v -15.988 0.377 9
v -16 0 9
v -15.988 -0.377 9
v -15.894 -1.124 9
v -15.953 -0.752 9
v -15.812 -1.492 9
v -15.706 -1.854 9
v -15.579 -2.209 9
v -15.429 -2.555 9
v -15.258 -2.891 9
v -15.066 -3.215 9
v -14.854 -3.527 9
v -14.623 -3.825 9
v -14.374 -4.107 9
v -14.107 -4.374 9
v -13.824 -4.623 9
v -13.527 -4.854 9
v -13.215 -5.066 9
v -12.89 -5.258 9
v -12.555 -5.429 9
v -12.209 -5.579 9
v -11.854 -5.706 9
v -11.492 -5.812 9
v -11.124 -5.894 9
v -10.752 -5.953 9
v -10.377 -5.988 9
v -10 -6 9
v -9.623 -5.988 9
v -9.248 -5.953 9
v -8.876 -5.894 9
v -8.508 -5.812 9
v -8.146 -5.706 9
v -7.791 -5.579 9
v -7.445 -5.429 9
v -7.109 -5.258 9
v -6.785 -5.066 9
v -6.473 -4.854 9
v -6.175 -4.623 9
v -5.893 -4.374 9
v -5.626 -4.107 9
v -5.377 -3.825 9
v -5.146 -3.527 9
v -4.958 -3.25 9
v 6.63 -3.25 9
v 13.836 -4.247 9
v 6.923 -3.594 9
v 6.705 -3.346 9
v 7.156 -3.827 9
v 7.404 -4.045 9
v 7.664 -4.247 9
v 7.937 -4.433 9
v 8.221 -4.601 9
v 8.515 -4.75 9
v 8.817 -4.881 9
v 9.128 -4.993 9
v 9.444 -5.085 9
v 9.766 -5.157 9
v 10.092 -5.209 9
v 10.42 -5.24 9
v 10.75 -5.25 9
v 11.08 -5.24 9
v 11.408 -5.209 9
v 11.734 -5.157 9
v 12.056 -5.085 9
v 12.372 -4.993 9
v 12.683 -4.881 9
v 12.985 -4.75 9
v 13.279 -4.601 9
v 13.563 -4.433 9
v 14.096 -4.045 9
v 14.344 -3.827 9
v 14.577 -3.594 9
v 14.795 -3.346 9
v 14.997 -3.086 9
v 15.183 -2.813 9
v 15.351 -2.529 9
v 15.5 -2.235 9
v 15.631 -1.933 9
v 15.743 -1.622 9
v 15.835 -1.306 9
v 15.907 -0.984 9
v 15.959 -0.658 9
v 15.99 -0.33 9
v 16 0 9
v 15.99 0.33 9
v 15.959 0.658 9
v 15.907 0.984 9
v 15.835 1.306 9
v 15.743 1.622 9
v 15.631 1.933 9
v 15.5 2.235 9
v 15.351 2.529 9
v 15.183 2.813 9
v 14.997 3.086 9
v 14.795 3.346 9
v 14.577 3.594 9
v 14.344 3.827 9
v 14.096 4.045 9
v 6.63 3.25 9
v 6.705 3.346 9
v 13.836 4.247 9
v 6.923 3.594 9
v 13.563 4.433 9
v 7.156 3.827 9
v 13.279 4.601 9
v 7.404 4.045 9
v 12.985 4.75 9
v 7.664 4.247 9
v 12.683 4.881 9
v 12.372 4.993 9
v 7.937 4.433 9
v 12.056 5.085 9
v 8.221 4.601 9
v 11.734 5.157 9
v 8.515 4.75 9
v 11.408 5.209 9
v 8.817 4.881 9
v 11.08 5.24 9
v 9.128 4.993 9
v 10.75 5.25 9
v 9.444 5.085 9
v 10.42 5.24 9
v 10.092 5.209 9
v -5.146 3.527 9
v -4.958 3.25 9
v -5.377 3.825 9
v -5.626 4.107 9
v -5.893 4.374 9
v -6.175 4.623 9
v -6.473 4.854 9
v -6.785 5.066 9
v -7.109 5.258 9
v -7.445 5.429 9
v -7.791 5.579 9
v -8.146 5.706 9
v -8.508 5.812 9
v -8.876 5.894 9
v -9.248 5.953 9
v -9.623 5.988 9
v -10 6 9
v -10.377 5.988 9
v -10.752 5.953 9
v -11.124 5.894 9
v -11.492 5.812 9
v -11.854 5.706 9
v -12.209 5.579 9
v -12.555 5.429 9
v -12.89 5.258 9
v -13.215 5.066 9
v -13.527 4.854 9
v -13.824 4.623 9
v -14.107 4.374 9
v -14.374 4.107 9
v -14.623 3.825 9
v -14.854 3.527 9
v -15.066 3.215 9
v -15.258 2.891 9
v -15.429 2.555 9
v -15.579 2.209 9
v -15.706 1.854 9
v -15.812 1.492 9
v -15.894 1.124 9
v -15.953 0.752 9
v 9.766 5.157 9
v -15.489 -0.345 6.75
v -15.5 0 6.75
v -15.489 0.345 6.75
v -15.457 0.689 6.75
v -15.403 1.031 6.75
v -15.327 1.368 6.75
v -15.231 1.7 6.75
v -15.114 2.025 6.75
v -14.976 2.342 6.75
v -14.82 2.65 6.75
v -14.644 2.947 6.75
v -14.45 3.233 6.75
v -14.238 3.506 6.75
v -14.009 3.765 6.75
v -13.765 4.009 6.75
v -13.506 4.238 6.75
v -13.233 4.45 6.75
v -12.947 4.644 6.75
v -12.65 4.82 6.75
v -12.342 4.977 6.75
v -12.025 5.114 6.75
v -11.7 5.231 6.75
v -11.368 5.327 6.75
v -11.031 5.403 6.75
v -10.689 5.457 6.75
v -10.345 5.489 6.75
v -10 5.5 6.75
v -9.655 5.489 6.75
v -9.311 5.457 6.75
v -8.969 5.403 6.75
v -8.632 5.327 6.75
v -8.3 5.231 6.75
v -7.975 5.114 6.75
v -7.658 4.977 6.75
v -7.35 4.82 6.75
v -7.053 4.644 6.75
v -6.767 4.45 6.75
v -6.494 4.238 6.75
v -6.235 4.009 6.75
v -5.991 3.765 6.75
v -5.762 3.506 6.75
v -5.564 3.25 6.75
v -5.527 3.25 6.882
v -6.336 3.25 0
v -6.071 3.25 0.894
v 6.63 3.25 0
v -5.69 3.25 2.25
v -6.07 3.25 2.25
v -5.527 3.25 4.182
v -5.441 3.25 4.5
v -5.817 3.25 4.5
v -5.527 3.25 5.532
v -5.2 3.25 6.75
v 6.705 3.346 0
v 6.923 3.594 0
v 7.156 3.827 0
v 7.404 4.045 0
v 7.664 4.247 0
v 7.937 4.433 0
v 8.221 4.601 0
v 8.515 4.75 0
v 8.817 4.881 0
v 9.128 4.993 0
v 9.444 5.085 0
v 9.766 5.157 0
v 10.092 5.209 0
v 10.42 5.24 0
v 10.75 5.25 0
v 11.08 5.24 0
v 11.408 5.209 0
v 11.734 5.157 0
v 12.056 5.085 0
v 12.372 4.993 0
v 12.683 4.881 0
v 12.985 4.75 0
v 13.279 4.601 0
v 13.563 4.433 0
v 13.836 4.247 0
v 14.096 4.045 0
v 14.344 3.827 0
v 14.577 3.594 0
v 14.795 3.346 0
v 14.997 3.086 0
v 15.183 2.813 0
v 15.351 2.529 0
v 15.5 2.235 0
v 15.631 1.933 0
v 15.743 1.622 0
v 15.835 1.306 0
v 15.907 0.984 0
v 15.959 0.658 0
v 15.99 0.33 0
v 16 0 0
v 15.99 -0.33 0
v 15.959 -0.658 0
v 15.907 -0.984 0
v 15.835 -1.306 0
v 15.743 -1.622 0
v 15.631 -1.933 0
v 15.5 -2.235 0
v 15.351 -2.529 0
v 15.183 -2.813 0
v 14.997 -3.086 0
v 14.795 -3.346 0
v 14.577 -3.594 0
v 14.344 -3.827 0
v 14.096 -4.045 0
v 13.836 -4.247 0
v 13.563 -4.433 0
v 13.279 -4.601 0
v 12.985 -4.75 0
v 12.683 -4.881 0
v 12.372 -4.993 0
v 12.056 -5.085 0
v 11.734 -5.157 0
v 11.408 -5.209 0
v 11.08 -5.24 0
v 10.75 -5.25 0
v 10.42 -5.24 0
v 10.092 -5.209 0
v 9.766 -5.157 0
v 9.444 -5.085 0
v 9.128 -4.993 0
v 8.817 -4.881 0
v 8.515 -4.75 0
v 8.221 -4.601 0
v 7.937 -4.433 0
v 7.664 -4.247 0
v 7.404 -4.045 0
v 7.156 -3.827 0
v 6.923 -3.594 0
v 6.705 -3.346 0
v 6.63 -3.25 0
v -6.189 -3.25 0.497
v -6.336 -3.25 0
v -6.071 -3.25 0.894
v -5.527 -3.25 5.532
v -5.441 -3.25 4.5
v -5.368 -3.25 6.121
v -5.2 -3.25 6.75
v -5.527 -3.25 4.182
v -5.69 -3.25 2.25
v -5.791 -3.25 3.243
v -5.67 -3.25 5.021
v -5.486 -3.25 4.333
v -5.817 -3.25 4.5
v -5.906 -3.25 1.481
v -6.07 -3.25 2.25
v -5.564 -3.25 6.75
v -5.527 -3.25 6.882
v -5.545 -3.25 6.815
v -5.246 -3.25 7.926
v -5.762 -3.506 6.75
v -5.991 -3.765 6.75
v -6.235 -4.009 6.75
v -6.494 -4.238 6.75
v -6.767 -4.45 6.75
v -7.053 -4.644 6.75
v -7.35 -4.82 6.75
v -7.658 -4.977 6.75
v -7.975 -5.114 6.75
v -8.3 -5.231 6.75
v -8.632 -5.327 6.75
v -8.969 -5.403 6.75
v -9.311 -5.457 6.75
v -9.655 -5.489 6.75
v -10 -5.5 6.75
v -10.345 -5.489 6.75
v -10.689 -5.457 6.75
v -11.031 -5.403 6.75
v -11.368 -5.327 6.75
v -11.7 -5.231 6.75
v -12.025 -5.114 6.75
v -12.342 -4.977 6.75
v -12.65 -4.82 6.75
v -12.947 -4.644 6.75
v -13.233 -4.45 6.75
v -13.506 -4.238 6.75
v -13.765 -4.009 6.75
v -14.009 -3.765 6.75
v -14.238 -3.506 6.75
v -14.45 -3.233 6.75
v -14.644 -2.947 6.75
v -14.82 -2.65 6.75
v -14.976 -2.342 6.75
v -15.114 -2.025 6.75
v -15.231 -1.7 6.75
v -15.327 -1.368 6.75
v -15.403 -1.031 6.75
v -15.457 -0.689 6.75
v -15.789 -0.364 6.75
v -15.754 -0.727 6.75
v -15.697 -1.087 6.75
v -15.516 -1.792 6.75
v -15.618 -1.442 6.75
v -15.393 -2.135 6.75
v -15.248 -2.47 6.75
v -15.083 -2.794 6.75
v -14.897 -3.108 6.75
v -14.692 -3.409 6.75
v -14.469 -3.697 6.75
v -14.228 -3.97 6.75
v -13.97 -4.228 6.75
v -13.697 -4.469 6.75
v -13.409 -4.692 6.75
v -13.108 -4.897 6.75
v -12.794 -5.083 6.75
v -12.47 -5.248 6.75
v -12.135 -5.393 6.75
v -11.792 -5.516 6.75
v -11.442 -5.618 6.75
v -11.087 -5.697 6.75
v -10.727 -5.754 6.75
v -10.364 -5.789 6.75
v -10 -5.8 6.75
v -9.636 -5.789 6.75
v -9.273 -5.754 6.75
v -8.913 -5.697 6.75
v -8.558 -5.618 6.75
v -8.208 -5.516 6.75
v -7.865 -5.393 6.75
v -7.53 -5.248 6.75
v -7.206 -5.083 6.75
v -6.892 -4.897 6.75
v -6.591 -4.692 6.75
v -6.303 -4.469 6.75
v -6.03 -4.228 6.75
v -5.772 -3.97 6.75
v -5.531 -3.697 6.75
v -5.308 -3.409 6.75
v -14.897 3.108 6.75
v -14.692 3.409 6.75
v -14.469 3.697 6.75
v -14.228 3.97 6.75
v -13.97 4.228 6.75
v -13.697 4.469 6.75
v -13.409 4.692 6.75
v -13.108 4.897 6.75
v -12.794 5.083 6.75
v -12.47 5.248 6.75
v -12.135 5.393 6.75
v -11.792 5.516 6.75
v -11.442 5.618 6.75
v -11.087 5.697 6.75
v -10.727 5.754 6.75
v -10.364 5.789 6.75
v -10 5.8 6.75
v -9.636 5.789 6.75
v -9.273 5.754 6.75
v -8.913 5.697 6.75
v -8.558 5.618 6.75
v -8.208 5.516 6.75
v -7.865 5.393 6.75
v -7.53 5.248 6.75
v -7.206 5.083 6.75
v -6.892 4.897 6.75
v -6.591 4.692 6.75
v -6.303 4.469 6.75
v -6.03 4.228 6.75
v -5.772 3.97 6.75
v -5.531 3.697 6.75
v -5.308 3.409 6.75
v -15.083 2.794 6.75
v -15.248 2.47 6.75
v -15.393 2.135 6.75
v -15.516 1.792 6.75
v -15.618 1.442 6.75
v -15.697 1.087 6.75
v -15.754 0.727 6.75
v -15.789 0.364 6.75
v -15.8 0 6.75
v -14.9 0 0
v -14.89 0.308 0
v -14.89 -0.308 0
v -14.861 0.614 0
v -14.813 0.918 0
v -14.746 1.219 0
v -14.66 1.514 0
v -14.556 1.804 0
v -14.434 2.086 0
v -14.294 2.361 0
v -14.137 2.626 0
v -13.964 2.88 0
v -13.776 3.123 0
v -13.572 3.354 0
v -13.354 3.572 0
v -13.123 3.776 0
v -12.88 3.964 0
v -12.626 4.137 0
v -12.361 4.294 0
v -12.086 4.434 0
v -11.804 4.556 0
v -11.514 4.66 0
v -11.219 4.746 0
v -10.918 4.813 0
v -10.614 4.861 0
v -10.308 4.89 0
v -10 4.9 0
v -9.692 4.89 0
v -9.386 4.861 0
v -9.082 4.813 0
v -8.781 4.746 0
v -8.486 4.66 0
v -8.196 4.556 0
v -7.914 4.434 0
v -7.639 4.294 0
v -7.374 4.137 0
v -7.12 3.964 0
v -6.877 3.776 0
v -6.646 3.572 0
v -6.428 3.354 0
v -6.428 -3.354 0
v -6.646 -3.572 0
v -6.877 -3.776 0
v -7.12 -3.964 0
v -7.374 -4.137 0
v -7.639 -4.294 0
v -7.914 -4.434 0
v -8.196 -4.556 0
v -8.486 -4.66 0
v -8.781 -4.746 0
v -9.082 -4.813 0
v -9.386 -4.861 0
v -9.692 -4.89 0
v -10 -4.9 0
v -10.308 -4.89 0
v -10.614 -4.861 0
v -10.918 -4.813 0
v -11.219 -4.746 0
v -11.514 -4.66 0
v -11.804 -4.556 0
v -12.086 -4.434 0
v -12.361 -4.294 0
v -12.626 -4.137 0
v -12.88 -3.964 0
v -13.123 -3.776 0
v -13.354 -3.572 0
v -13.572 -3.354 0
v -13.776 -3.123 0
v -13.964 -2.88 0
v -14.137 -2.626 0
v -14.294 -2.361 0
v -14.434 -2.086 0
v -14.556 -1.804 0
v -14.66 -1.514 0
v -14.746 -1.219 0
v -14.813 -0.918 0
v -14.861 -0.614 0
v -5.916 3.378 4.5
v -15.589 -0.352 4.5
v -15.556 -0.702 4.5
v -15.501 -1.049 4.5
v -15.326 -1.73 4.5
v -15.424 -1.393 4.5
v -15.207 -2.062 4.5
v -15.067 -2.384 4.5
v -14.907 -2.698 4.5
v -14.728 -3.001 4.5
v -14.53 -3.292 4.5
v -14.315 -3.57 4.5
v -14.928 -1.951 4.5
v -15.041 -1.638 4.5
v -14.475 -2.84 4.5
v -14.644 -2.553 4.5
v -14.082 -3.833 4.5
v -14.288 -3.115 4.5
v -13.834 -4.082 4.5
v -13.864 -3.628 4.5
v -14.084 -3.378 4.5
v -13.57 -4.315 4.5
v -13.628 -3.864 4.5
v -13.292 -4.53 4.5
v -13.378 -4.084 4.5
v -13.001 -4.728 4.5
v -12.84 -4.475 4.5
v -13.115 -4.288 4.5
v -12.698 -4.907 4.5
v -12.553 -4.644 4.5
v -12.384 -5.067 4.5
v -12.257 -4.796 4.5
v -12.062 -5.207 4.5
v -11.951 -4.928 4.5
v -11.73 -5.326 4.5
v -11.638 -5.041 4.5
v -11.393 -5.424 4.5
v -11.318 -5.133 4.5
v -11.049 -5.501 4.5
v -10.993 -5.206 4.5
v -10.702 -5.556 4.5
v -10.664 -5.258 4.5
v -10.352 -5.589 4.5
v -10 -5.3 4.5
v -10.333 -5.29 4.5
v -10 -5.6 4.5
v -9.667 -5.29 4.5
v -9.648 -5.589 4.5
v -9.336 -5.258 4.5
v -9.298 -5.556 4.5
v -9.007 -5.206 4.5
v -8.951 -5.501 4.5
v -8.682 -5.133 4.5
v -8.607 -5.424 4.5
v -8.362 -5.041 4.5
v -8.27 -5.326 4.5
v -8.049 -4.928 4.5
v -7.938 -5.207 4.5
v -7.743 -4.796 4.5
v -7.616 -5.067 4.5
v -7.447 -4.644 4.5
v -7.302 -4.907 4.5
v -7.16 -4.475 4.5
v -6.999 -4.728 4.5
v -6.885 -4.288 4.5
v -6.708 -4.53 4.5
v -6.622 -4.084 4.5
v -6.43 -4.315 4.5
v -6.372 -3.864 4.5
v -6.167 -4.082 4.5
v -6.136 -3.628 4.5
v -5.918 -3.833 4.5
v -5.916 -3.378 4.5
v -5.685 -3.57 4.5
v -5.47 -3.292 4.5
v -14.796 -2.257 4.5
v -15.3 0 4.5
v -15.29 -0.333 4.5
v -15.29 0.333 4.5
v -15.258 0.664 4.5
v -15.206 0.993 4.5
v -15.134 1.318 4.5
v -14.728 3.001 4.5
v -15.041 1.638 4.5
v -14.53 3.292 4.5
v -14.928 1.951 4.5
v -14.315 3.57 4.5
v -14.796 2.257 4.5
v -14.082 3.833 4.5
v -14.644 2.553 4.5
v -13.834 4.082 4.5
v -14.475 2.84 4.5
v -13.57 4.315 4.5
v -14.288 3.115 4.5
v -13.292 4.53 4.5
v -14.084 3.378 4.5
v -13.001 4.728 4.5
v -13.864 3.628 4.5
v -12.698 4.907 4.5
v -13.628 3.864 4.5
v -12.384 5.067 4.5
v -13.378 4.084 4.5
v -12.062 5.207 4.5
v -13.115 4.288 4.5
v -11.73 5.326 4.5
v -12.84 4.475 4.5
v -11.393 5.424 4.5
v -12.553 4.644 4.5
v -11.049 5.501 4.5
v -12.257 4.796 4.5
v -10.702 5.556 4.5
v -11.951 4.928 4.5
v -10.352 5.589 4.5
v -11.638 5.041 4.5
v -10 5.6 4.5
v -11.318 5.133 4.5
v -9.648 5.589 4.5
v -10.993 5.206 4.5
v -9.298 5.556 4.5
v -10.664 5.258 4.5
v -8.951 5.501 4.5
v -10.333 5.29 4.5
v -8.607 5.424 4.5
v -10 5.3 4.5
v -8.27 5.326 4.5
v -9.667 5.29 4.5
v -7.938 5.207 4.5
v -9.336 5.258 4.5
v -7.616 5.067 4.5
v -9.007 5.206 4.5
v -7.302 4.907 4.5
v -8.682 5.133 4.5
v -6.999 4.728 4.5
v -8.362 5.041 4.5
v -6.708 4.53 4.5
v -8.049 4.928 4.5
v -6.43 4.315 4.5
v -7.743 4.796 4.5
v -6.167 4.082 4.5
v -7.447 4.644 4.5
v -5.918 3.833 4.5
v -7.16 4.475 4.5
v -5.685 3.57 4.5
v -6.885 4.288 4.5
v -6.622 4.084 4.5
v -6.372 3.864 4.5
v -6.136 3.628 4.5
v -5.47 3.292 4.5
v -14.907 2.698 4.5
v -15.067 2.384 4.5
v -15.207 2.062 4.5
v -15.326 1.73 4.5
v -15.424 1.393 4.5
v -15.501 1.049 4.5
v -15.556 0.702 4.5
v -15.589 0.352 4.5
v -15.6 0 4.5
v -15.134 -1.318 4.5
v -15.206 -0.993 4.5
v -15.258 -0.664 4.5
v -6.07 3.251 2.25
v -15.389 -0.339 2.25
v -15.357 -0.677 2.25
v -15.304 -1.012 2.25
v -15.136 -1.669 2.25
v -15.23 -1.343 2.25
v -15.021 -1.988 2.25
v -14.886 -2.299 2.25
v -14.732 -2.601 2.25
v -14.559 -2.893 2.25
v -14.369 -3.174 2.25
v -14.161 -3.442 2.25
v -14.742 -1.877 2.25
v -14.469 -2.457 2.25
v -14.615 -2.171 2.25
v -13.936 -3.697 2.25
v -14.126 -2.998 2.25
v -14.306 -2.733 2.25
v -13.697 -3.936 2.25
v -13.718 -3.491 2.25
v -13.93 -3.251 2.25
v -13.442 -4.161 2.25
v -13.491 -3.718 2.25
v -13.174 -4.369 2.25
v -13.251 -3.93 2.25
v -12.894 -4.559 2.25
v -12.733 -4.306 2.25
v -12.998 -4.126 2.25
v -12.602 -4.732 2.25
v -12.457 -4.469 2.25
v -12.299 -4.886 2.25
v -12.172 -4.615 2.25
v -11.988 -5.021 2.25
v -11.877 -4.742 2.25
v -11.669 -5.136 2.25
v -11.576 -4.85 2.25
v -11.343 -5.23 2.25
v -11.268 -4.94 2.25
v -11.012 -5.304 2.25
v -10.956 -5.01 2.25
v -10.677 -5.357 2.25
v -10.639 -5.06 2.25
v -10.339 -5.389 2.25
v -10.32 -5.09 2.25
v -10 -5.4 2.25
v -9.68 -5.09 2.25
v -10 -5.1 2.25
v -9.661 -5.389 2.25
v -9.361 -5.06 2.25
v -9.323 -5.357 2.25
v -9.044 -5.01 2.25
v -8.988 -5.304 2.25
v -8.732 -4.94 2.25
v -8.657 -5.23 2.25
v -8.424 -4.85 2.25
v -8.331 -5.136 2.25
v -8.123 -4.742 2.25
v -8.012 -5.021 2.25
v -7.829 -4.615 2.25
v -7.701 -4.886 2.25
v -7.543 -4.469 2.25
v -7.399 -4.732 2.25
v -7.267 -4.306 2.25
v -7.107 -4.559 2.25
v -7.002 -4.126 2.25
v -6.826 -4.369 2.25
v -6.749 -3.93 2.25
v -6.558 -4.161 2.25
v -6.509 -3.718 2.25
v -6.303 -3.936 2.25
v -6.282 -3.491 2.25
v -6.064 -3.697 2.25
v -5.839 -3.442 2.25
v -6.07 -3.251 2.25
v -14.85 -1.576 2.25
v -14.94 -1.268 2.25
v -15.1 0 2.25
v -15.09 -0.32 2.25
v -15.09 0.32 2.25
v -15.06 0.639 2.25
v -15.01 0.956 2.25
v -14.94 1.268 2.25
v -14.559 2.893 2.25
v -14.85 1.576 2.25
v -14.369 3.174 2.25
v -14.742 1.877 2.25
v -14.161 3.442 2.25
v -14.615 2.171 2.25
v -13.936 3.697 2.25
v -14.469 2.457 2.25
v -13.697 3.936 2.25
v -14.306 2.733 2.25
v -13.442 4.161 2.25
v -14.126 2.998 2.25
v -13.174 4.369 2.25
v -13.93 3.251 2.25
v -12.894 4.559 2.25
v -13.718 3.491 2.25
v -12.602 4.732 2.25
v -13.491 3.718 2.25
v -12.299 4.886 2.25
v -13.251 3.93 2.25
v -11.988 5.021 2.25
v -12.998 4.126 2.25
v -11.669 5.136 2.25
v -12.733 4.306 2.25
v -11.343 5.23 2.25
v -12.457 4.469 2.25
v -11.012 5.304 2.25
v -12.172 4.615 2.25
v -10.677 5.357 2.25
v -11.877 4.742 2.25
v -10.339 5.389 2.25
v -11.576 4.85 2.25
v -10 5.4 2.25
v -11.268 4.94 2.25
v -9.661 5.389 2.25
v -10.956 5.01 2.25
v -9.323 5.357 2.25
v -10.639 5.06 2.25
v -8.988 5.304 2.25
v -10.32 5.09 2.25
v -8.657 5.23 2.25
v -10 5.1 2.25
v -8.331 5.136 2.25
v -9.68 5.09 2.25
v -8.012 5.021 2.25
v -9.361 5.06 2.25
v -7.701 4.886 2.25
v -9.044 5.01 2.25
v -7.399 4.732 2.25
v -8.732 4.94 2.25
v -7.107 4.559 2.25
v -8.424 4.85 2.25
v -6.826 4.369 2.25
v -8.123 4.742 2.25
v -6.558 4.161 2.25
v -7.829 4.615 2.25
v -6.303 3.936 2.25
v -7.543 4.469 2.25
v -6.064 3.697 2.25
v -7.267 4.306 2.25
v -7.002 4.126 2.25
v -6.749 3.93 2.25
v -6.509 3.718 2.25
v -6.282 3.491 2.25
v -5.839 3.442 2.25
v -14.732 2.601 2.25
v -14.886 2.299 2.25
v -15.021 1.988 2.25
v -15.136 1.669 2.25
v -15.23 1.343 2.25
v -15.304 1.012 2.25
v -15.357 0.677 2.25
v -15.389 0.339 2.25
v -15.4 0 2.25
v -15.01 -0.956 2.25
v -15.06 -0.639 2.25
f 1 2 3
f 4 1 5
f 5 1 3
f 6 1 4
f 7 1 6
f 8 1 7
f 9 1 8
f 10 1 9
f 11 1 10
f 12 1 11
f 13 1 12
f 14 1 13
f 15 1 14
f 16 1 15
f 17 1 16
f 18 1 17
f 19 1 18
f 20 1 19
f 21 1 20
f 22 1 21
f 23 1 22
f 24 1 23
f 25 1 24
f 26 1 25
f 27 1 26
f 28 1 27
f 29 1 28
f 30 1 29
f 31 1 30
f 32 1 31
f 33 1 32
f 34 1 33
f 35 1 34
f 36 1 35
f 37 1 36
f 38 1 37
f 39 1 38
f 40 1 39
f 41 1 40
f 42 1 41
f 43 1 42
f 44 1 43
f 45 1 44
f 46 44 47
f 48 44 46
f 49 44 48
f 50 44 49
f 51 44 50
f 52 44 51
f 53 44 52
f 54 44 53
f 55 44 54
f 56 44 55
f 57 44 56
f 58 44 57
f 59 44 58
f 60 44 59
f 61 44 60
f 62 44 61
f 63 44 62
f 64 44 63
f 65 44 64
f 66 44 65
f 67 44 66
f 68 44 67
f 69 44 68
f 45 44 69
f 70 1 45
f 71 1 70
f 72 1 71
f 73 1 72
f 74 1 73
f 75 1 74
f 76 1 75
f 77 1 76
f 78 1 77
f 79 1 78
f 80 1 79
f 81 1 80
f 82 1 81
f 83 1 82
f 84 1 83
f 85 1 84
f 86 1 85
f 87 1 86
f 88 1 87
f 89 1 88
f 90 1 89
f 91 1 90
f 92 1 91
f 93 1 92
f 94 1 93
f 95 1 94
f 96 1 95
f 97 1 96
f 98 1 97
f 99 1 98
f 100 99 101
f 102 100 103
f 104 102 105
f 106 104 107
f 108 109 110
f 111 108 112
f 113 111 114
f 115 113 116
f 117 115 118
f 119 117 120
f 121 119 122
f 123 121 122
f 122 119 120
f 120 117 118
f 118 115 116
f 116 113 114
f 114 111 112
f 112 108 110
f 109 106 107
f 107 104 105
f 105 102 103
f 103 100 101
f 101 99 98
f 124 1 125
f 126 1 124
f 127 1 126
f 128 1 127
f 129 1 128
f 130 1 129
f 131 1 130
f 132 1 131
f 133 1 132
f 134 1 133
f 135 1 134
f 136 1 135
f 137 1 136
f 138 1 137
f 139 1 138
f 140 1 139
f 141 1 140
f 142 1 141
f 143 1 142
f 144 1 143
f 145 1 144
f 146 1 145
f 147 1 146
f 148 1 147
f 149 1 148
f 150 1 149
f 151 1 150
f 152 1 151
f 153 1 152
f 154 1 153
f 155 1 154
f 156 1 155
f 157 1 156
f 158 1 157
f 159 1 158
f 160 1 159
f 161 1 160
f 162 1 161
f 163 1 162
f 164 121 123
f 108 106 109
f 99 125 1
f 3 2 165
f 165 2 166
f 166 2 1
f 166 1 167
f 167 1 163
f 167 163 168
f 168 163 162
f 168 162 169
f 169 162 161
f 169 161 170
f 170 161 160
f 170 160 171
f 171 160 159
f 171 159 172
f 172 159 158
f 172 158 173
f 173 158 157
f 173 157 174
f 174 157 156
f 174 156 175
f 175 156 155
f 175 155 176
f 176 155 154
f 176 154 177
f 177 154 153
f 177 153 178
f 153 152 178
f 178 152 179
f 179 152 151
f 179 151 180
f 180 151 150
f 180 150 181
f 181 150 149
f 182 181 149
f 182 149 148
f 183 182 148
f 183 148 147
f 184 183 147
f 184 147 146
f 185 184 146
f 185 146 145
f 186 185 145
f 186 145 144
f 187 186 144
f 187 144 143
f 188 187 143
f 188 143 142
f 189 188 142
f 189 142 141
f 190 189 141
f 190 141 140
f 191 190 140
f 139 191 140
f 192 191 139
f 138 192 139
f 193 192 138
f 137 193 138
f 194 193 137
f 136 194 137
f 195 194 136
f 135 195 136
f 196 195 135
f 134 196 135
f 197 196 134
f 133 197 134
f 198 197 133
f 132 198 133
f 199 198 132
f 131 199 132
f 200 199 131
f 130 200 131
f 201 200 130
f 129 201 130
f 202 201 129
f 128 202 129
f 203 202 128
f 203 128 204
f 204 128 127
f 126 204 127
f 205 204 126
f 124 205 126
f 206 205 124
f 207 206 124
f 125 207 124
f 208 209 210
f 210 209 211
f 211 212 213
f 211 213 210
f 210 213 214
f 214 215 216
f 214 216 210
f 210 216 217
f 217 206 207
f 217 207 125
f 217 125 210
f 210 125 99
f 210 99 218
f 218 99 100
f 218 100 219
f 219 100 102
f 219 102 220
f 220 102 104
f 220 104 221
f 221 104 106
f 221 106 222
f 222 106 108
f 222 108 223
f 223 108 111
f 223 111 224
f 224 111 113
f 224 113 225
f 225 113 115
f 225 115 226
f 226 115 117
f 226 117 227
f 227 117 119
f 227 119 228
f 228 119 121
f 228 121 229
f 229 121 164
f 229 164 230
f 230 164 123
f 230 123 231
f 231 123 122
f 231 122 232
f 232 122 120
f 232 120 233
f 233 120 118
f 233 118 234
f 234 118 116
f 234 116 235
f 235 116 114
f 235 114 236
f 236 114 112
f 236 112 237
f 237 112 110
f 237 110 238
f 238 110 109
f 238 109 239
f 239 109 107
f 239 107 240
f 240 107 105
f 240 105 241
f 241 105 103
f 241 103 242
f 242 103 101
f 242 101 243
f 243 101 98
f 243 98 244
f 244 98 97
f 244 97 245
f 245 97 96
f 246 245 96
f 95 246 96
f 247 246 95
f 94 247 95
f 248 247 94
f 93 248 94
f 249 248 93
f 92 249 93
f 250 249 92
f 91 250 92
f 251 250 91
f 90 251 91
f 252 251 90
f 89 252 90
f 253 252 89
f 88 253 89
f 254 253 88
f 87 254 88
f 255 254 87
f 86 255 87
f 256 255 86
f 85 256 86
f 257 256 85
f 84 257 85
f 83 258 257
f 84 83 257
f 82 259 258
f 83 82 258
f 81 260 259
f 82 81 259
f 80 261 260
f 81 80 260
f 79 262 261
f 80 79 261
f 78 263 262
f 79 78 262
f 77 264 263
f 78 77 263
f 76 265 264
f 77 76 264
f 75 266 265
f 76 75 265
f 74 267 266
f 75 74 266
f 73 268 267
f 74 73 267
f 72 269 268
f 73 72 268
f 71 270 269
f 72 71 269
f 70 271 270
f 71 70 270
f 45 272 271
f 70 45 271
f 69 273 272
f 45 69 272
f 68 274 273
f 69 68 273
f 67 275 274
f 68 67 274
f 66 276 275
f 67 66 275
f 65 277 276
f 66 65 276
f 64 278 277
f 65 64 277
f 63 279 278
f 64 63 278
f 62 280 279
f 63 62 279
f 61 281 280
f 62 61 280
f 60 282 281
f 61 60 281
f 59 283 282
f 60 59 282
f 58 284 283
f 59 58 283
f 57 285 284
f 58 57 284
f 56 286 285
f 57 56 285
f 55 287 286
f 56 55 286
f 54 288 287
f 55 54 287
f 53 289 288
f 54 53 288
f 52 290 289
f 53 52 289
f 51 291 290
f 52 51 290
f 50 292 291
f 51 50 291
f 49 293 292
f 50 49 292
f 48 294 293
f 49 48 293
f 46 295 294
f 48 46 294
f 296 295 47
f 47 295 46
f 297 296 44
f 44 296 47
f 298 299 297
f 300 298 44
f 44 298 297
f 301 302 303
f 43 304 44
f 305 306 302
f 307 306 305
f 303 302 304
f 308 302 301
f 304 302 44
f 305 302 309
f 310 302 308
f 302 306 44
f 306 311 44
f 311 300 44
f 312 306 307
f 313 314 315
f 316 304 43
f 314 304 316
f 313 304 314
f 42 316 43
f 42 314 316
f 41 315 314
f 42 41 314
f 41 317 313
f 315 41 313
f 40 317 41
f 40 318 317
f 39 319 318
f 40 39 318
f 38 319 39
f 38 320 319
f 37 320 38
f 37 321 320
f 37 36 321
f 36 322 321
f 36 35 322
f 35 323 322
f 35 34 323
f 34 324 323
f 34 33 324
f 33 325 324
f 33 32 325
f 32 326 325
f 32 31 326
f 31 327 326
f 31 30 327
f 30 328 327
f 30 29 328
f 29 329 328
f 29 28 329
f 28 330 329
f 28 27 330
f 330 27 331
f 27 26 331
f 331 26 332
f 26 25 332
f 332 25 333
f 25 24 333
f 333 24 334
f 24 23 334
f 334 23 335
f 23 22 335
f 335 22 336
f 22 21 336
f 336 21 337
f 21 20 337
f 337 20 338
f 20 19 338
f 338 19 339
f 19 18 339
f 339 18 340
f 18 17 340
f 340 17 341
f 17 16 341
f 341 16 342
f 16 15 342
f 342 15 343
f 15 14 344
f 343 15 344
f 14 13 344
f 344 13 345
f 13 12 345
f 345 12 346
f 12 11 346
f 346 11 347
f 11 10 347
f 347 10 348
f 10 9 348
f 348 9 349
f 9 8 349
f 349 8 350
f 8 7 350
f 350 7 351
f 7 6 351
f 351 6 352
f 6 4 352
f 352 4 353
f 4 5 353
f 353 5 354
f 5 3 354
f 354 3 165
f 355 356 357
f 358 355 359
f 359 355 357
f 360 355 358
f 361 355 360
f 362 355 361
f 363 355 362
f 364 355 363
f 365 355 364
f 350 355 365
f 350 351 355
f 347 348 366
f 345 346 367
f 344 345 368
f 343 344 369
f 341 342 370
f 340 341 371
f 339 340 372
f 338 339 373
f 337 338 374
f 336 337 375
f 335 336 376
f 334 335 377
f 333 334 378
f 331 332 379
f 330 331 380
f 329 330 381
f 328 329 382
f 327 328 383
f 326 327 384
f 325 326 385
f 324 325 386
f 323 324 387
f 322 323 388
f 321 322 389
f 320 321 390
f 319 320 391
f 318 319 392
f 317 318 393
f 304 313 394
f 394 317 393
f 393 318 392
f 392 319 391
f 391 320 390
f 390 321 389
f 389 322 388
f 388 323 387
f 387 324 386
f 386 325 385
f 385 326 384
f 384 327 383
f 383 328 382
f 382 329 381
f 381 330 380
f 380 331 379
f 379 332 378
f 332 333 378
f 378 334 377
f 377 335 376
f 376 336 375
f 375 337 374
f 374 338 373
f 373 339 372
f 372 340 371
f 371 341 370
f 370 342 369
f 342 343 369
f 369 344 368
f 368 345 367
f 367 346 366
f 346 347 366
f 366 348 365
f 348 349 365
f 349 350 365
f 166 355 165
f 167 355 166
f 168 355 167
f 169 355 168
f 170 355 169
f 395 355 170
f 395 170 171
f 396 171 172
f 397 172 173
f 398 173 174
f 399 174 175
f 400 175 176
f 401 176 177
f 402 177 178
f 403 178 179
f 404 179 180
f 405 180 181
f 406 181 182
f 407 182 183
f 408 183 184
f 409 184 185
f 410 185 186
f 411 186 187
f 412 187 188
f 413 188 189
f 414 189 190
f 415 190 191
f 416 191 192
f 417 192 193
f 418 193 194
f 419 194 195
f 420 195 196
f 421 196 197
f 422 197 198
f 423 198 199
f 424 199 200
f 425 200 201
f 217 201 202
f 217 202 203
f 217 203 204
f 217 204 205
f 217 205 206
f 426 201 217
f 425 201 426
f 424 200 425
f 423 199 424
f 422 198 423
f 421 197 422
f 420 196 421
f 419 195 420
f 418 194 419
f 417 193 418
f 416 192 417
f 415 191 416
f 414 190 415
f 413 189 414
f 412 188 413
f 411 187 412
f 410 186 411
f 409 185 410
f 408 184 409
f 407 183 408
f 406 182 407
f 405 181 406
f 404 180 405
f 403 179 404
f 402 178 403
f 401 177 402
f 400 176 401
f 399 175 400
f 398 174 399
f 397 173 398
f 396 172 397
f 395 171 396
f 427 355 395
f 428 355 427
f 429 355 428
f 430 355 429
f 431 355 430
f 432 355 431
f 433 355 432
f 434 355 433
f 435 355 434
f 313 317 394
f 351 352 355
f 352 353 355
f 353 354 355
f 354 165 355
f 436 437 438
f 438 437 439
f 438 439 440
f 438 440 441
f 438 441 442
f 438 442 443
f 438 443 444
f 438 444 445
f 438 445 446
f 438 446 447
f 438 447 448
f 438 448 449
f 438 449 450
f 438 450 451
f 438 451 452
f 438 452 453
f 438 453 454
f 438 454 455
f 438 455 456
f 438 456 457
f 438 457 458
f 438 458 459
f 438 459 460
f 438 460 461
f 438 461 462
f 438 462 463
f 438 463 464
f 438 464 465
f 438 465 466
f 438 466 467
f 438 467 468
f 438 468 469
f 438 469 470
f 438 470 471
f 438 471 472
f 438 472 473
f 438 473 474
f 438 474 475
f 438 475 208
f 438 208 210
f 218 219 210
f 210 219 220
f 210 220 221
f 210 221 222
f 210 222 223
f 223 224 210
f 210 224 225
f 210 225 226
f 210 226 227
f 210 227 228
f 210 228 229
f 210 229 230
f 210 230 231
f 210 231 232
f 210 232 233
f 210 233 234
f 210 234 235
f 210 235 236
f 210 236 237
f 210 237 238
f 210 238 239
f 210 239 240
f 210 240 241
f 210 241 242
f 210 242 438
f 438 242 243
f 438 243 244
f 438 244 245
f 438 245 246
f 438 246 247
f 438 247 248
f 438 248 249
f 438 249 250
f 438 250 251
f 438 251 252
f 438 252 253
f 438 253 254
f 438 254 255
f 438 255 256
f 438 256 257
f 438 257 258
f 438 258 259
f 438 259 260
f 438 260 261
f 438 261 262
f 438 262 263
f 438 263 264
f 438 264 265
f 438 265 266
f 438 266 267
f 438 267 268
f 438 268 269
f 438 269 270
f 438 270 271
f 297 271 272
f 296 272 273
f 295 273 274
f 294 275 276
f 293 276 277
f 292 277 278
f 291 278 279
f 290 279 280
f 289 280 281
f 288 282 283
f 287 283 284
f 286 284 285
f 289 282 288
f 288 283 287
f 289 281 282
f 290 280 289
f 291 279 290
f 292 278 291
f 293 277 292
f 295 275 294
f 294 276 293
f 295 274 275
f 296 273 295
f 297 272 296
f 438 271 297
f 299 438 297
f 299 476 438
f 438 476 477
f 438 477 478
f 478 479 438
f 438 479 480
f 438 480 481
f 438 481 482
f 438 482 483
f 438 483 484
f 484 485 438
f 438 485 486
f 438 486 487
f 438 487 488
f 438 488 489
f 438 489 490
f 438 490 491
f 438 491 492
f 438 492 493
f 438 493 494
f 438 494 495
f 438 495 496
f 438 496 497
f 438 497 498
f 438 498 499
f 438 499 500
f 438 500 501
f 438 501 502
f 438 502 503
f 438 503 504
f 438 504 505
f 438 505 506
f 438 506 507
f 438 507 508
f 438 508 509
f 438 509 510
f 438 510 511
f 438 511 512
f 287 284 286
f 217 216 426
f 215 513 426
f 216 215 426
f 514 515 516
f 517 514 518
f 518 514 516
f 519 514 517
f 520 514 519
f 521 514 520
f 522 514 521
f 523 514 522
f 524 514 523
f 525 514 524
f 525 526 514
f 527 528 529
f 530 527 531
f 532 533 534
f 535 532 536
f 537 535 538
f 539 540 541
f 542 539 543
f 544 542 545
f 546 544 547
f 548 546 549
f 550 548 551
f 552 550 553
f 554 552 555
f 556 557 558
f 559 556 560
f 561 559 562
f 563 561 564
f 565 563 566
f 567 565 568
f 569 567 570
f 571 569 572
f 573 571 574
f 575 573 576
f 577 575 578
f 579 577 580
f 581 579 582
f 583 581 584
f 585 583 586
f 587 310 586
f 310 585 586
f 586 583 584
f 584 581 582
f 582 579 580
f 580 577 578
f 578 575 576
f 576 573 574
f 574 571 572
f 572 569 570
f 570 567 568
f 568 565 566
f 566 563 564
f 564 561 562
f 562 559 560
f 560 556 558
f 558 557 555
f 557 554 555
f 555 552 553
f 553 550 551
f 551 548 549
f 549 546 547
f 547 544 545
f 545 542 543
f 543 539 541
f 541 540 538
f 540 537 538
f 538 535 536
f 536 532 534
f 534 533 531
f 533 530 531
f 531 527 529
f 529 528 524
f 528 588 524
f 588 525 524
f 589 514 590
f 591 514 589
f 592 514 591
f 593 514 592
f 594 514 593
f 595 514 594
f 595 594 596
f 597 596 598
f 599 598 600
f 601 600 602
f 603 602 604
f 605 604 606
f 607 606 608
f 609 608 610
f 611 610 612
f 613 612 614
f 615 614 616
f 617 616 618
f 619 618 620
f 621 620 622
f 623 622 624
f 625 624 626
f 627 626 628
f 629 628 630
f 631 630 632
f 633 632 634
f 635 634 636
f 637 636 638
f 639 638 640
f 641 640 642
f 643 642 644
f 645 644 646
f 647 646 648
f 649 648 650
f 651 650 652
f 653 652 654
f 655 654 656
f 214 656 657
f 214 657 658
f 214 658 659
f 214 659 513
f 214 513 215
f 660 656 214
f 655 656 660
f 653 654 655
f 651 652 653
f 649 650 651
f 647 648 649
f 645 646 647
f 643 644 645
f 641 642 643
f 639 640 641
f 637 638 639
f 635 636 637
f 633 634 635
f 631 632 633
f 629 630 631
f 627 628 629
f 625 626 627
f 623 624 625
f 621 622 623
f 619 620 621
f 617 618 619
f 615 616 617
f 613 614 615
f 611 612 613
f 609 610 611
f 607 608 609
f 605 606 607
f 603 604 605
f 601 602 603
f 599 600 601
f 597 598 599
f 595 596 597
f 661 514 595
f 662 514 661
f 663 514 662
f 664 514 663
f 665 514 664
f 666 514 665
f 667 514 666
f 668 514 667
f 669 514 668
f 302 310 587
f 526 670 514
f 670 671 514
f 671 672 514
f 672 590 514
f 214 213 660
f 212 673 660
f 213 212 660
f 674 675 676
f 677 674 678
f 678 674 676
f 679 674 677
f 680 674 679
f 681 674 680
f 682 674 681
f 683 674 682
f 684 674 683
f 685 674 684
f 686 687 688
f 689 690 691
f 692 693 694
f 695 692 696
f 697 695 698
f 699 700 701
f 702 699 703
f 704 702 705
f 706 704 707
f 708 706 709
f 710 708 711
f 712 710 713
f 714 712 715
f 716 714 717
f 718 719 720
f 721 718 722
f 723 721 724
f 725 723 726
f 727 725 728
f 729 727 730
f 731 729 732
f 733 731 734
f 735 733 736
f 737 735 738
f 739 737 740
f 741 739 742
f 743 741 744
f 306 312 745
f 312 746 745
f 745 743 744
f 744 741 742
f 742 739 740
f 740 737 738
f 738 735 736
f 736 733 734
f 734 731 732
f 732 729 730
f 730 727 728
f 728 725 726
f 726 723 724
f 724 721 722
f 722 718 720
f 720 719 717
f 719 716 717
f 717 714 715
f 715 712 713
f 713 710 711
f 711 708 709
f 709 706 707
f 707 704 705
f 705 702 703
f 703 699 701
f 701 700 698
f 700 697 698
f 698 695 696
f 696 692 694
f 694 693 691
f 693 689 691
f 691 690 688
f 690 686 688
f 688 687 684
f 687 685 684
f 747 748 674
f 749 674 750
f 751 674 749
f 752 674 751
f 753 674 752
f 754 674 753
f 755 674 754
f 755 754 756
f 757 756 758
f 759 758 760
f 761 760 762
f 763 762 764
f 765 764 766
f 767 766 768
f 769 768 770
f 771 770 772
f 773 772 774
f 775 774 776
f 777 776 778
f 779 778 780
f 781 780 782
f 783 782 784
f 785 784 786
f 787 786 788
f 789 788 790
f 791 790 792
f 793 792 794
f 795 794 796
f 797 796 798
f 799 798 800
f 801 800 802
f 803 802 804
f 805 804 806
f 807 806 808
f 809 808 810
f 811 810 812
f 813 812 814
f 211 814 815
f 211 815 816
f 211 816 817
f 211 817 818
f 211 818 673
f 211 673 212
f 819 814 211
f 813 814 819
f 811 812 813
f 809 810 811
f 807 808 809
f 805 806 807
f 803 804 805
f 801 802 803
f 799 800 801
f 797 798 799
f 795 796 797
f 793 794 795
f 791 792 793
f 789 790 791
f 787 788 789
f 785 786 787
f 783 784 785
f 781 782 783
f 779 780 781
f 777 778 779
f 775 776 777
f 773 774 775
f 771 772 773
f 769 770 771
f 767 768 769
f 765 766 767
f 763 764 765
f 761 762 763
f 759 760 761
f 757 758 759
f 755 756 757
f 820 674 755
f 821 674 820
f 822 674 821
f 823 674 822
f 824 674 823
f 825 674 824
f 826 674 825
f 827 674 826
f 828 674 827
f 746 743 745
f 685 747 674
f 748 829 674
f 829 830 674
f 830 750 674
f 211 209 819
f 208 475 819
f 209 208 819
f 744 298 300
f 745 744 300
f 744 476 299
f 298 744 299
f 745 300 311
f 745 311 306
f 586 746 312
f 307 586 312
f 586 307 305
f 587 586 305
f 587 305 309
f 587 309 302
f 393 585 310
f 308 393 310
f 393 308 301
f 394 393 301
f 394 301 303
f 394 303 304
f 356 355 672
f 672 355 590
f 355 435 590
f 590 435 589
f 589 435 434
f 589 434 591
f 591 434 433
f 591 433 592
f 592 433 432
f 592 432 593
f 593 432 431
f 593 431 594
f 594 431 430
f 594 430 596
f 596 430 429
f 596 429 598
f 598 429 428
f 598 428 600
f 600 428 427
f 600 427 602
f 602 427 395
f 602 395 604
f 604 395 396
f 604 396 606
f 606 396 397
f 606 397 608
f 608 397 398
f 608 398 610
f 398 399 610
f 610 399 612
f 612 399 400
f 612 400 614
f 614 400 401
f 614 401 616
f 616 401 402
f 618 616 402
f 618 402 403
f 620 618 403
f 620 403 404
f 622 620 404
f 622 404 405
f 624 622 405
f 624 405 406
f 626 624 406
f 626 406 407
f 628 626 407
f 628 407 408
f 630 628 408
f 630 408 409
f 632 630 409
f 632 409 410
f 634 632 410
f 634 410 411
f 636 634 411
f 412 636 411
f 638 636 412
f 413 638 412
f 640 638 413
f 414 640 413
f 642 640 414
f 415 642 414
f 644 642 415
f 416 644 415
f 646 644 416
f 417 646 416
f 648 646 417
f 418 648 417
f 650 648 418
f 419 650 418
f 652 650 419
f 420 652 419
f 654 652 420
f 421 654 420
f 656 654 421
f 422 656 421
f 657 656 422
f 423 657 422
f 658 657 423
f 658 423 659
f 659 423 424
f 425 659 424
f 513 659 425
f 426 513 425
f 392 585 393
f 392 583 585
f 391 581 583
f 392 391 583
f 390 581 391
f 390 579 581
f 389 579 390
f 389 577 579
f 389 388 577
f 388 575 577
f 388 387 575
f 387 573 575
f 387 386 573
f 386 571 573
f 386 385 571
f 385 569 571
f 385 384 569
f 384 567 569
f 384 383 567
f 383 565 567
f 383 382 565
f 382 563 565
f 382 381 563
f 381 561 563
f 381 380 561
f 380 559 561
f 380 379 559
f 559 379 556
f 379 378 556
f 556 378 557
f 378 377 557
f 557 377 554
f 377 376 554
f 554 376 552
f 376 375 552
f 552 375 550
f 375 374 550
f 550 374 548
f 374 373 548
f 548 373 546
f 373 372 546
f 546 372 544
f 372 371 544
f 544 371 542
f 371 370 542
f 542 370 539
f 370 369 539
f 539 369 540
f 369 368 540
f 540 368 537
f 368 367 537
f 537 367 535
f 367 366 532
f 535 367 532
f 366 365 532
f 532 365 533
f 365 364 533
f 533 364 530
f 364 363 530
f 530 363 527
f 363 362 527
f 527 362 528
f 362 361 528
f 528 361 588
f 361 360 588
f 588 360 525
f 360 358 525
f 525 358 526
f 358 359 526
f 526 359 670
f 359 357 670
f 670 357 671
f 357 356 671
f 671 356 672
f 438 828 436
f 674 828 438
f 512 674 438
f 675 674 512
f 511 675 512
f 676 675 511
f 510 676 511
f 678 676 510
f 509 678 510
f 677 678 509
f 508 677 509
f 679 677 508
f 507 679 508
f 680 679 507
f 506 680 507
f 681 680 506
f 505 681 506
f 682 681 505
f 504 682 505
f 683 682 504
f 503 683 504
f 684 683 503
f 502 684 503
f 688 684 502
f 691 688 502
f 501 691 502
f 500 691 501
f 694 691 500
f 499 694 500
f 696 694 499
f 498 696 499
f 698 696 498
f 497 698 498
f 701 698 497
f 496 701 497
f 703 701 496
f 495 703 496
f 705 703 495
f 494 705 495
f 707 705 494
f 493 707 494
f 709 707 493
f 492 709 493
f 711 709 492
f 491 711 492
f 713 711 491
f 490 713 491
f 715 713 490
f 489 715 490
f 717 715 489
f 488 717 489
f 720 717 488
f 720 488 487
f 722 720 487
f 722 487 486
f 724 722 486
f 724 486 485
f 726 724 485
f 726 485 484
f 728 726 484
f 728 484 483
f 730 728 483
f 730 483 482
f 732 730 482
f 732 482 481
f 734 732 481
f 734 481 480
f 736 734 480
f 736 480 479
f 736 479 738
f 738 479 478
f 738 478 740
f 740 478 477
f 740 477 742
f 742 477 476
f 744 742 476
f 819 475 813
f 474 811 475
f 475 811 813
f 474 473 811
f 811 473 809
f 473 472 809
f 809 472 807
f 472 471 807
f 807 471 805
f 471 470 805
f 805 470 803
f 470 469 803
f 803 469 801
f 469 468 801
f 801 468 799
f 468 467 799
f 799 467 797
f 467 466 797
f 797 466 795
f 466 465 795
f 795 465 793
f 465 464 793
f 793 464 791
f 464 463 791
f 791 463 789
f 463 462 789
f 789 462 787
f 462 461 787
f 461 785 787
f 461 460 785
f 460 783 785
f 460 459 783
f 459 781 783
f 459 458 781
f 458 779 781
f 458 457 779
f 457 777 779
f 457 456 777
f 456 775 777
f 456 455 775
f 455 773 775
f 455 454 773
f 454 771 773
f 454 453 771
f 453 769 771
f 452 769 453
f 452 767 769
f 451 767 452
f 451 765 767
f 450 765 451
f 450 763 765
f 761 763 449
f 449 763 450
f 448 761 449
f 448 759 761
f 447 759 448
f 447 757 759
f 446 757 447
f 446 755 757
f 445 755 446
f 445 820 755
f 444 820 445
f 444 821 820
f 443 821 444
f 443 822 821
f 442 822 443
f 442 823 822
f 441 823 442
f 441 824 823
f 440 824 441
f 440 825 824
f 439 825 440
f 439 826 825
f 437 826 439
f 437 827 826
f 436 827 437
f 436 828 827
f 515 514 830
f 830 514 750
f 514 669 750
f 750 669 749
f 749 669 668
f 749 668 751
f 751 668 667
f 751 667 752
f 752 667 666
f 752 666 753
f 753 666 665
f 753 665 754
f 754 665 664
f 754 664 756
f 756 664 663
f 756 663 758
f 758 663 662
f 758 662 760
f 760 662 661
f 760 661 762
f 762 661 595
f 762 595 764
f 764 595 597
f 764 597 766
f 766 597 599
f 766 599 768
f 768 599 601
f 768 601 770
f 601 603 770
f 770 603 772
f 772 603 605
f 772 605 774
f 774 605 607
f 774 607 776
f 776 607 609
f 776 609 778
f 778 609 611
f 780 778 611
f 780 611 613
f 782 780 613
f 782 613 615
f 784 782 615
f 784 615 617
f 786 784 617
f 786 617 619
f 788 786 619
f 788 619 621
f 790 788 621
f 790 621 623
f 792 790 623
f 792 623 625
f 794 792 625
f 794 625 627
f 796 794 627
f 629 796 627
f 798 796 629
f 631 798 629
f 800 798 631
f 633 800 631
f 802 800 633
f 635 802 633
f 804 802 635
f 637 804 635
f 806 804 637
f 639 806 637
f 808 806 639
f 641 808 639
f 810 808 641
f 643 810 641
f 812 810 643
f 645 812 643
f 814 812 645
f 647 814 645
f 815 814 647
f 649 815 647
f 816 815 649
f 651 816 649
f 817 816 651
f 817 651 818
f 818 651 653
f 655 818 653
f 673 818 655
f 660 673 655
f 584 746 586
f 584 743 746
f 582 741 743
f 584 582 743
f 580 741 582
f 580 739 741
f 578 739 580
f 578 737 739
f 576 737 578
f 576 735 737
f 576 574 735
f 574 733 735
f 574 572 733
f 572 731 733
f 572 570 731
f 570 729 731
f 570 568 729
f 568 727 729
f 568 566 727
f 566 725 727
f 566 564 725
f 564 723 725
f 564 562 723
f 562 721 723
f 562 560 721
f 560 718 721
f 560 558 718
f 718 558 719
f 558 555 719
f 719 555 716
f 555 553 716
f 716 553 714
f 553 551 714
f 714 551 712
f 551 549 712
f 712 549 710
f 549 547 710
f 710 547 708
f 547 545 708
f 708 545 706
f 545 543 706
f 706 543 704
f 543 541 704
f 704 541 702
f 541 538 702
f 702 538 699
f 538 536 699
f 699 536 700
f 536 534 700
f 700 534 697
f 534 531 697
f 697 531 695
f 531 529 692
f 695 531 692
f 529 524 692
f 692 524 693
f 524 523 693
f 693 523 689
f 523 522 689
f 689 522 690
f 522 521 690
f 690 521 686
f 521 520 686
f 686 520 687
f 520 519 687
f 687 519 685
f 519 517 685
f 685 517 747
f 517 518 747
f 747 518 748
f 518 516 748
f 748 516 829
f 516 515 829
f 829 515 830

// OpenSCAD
// side view     http://i.imgur.com/SebDrlT.jpg
// side view     http://i.imgur.com/KTkSMzJ.jpg
// diagonal view http://i.imgur.com/Glkl5wg.jpg
// measurements  http://i.imgur.com/4EWnrBd.jpg

width = 32;
height = 9;
rod_width = 6.5;
attaching_head_radius = 6;
attaching_head_min_radius = 5.2;
groove_depth = 0.5;
connector_head_radius = 5.25;

teeth_count = 4;
attaching_head_radius_step = ( attaching_head_radius - attaching_head_min_radius ) / teeth_count;

module main() {
  cube([width - attaching_head_radius - connector_head_radius, rod_width, height], center = true);
  translate([width/2 - connector_head_radius, 0, 0])
    cylinder(r = connector_head_radius, h = height, center = true, $fn = 100);
  
  translate([-width/2 + attaching_head_radius, 0, 0])
    for(i = [0 : teeth_count - 1]) {
      assign (radius      = attaching_head_radius - attaching_head_radius_step * i,
              z_translate = (height/2 - height/(teeth_count*2)) - (height/teeth_count) * i) {
        translate([0, 0, z_translate])
          cylinder(r2 = radius, r1 = radius - groove_depth, h = height/teeth_count, center = true, $fn = 100);
      }
    }
  
  /*
  intersection() {
    cylinder(r = attaching_head_radius, h = height/4, center = true, $fn = 100);
    rotate_extrude($fn = 100)
      translate([attaching_head_radius - height/8, 0, 0])
        circle(r = height/7, $fn = 100);
  }
  */
}

translate([0, 0, height/2])
  main();
